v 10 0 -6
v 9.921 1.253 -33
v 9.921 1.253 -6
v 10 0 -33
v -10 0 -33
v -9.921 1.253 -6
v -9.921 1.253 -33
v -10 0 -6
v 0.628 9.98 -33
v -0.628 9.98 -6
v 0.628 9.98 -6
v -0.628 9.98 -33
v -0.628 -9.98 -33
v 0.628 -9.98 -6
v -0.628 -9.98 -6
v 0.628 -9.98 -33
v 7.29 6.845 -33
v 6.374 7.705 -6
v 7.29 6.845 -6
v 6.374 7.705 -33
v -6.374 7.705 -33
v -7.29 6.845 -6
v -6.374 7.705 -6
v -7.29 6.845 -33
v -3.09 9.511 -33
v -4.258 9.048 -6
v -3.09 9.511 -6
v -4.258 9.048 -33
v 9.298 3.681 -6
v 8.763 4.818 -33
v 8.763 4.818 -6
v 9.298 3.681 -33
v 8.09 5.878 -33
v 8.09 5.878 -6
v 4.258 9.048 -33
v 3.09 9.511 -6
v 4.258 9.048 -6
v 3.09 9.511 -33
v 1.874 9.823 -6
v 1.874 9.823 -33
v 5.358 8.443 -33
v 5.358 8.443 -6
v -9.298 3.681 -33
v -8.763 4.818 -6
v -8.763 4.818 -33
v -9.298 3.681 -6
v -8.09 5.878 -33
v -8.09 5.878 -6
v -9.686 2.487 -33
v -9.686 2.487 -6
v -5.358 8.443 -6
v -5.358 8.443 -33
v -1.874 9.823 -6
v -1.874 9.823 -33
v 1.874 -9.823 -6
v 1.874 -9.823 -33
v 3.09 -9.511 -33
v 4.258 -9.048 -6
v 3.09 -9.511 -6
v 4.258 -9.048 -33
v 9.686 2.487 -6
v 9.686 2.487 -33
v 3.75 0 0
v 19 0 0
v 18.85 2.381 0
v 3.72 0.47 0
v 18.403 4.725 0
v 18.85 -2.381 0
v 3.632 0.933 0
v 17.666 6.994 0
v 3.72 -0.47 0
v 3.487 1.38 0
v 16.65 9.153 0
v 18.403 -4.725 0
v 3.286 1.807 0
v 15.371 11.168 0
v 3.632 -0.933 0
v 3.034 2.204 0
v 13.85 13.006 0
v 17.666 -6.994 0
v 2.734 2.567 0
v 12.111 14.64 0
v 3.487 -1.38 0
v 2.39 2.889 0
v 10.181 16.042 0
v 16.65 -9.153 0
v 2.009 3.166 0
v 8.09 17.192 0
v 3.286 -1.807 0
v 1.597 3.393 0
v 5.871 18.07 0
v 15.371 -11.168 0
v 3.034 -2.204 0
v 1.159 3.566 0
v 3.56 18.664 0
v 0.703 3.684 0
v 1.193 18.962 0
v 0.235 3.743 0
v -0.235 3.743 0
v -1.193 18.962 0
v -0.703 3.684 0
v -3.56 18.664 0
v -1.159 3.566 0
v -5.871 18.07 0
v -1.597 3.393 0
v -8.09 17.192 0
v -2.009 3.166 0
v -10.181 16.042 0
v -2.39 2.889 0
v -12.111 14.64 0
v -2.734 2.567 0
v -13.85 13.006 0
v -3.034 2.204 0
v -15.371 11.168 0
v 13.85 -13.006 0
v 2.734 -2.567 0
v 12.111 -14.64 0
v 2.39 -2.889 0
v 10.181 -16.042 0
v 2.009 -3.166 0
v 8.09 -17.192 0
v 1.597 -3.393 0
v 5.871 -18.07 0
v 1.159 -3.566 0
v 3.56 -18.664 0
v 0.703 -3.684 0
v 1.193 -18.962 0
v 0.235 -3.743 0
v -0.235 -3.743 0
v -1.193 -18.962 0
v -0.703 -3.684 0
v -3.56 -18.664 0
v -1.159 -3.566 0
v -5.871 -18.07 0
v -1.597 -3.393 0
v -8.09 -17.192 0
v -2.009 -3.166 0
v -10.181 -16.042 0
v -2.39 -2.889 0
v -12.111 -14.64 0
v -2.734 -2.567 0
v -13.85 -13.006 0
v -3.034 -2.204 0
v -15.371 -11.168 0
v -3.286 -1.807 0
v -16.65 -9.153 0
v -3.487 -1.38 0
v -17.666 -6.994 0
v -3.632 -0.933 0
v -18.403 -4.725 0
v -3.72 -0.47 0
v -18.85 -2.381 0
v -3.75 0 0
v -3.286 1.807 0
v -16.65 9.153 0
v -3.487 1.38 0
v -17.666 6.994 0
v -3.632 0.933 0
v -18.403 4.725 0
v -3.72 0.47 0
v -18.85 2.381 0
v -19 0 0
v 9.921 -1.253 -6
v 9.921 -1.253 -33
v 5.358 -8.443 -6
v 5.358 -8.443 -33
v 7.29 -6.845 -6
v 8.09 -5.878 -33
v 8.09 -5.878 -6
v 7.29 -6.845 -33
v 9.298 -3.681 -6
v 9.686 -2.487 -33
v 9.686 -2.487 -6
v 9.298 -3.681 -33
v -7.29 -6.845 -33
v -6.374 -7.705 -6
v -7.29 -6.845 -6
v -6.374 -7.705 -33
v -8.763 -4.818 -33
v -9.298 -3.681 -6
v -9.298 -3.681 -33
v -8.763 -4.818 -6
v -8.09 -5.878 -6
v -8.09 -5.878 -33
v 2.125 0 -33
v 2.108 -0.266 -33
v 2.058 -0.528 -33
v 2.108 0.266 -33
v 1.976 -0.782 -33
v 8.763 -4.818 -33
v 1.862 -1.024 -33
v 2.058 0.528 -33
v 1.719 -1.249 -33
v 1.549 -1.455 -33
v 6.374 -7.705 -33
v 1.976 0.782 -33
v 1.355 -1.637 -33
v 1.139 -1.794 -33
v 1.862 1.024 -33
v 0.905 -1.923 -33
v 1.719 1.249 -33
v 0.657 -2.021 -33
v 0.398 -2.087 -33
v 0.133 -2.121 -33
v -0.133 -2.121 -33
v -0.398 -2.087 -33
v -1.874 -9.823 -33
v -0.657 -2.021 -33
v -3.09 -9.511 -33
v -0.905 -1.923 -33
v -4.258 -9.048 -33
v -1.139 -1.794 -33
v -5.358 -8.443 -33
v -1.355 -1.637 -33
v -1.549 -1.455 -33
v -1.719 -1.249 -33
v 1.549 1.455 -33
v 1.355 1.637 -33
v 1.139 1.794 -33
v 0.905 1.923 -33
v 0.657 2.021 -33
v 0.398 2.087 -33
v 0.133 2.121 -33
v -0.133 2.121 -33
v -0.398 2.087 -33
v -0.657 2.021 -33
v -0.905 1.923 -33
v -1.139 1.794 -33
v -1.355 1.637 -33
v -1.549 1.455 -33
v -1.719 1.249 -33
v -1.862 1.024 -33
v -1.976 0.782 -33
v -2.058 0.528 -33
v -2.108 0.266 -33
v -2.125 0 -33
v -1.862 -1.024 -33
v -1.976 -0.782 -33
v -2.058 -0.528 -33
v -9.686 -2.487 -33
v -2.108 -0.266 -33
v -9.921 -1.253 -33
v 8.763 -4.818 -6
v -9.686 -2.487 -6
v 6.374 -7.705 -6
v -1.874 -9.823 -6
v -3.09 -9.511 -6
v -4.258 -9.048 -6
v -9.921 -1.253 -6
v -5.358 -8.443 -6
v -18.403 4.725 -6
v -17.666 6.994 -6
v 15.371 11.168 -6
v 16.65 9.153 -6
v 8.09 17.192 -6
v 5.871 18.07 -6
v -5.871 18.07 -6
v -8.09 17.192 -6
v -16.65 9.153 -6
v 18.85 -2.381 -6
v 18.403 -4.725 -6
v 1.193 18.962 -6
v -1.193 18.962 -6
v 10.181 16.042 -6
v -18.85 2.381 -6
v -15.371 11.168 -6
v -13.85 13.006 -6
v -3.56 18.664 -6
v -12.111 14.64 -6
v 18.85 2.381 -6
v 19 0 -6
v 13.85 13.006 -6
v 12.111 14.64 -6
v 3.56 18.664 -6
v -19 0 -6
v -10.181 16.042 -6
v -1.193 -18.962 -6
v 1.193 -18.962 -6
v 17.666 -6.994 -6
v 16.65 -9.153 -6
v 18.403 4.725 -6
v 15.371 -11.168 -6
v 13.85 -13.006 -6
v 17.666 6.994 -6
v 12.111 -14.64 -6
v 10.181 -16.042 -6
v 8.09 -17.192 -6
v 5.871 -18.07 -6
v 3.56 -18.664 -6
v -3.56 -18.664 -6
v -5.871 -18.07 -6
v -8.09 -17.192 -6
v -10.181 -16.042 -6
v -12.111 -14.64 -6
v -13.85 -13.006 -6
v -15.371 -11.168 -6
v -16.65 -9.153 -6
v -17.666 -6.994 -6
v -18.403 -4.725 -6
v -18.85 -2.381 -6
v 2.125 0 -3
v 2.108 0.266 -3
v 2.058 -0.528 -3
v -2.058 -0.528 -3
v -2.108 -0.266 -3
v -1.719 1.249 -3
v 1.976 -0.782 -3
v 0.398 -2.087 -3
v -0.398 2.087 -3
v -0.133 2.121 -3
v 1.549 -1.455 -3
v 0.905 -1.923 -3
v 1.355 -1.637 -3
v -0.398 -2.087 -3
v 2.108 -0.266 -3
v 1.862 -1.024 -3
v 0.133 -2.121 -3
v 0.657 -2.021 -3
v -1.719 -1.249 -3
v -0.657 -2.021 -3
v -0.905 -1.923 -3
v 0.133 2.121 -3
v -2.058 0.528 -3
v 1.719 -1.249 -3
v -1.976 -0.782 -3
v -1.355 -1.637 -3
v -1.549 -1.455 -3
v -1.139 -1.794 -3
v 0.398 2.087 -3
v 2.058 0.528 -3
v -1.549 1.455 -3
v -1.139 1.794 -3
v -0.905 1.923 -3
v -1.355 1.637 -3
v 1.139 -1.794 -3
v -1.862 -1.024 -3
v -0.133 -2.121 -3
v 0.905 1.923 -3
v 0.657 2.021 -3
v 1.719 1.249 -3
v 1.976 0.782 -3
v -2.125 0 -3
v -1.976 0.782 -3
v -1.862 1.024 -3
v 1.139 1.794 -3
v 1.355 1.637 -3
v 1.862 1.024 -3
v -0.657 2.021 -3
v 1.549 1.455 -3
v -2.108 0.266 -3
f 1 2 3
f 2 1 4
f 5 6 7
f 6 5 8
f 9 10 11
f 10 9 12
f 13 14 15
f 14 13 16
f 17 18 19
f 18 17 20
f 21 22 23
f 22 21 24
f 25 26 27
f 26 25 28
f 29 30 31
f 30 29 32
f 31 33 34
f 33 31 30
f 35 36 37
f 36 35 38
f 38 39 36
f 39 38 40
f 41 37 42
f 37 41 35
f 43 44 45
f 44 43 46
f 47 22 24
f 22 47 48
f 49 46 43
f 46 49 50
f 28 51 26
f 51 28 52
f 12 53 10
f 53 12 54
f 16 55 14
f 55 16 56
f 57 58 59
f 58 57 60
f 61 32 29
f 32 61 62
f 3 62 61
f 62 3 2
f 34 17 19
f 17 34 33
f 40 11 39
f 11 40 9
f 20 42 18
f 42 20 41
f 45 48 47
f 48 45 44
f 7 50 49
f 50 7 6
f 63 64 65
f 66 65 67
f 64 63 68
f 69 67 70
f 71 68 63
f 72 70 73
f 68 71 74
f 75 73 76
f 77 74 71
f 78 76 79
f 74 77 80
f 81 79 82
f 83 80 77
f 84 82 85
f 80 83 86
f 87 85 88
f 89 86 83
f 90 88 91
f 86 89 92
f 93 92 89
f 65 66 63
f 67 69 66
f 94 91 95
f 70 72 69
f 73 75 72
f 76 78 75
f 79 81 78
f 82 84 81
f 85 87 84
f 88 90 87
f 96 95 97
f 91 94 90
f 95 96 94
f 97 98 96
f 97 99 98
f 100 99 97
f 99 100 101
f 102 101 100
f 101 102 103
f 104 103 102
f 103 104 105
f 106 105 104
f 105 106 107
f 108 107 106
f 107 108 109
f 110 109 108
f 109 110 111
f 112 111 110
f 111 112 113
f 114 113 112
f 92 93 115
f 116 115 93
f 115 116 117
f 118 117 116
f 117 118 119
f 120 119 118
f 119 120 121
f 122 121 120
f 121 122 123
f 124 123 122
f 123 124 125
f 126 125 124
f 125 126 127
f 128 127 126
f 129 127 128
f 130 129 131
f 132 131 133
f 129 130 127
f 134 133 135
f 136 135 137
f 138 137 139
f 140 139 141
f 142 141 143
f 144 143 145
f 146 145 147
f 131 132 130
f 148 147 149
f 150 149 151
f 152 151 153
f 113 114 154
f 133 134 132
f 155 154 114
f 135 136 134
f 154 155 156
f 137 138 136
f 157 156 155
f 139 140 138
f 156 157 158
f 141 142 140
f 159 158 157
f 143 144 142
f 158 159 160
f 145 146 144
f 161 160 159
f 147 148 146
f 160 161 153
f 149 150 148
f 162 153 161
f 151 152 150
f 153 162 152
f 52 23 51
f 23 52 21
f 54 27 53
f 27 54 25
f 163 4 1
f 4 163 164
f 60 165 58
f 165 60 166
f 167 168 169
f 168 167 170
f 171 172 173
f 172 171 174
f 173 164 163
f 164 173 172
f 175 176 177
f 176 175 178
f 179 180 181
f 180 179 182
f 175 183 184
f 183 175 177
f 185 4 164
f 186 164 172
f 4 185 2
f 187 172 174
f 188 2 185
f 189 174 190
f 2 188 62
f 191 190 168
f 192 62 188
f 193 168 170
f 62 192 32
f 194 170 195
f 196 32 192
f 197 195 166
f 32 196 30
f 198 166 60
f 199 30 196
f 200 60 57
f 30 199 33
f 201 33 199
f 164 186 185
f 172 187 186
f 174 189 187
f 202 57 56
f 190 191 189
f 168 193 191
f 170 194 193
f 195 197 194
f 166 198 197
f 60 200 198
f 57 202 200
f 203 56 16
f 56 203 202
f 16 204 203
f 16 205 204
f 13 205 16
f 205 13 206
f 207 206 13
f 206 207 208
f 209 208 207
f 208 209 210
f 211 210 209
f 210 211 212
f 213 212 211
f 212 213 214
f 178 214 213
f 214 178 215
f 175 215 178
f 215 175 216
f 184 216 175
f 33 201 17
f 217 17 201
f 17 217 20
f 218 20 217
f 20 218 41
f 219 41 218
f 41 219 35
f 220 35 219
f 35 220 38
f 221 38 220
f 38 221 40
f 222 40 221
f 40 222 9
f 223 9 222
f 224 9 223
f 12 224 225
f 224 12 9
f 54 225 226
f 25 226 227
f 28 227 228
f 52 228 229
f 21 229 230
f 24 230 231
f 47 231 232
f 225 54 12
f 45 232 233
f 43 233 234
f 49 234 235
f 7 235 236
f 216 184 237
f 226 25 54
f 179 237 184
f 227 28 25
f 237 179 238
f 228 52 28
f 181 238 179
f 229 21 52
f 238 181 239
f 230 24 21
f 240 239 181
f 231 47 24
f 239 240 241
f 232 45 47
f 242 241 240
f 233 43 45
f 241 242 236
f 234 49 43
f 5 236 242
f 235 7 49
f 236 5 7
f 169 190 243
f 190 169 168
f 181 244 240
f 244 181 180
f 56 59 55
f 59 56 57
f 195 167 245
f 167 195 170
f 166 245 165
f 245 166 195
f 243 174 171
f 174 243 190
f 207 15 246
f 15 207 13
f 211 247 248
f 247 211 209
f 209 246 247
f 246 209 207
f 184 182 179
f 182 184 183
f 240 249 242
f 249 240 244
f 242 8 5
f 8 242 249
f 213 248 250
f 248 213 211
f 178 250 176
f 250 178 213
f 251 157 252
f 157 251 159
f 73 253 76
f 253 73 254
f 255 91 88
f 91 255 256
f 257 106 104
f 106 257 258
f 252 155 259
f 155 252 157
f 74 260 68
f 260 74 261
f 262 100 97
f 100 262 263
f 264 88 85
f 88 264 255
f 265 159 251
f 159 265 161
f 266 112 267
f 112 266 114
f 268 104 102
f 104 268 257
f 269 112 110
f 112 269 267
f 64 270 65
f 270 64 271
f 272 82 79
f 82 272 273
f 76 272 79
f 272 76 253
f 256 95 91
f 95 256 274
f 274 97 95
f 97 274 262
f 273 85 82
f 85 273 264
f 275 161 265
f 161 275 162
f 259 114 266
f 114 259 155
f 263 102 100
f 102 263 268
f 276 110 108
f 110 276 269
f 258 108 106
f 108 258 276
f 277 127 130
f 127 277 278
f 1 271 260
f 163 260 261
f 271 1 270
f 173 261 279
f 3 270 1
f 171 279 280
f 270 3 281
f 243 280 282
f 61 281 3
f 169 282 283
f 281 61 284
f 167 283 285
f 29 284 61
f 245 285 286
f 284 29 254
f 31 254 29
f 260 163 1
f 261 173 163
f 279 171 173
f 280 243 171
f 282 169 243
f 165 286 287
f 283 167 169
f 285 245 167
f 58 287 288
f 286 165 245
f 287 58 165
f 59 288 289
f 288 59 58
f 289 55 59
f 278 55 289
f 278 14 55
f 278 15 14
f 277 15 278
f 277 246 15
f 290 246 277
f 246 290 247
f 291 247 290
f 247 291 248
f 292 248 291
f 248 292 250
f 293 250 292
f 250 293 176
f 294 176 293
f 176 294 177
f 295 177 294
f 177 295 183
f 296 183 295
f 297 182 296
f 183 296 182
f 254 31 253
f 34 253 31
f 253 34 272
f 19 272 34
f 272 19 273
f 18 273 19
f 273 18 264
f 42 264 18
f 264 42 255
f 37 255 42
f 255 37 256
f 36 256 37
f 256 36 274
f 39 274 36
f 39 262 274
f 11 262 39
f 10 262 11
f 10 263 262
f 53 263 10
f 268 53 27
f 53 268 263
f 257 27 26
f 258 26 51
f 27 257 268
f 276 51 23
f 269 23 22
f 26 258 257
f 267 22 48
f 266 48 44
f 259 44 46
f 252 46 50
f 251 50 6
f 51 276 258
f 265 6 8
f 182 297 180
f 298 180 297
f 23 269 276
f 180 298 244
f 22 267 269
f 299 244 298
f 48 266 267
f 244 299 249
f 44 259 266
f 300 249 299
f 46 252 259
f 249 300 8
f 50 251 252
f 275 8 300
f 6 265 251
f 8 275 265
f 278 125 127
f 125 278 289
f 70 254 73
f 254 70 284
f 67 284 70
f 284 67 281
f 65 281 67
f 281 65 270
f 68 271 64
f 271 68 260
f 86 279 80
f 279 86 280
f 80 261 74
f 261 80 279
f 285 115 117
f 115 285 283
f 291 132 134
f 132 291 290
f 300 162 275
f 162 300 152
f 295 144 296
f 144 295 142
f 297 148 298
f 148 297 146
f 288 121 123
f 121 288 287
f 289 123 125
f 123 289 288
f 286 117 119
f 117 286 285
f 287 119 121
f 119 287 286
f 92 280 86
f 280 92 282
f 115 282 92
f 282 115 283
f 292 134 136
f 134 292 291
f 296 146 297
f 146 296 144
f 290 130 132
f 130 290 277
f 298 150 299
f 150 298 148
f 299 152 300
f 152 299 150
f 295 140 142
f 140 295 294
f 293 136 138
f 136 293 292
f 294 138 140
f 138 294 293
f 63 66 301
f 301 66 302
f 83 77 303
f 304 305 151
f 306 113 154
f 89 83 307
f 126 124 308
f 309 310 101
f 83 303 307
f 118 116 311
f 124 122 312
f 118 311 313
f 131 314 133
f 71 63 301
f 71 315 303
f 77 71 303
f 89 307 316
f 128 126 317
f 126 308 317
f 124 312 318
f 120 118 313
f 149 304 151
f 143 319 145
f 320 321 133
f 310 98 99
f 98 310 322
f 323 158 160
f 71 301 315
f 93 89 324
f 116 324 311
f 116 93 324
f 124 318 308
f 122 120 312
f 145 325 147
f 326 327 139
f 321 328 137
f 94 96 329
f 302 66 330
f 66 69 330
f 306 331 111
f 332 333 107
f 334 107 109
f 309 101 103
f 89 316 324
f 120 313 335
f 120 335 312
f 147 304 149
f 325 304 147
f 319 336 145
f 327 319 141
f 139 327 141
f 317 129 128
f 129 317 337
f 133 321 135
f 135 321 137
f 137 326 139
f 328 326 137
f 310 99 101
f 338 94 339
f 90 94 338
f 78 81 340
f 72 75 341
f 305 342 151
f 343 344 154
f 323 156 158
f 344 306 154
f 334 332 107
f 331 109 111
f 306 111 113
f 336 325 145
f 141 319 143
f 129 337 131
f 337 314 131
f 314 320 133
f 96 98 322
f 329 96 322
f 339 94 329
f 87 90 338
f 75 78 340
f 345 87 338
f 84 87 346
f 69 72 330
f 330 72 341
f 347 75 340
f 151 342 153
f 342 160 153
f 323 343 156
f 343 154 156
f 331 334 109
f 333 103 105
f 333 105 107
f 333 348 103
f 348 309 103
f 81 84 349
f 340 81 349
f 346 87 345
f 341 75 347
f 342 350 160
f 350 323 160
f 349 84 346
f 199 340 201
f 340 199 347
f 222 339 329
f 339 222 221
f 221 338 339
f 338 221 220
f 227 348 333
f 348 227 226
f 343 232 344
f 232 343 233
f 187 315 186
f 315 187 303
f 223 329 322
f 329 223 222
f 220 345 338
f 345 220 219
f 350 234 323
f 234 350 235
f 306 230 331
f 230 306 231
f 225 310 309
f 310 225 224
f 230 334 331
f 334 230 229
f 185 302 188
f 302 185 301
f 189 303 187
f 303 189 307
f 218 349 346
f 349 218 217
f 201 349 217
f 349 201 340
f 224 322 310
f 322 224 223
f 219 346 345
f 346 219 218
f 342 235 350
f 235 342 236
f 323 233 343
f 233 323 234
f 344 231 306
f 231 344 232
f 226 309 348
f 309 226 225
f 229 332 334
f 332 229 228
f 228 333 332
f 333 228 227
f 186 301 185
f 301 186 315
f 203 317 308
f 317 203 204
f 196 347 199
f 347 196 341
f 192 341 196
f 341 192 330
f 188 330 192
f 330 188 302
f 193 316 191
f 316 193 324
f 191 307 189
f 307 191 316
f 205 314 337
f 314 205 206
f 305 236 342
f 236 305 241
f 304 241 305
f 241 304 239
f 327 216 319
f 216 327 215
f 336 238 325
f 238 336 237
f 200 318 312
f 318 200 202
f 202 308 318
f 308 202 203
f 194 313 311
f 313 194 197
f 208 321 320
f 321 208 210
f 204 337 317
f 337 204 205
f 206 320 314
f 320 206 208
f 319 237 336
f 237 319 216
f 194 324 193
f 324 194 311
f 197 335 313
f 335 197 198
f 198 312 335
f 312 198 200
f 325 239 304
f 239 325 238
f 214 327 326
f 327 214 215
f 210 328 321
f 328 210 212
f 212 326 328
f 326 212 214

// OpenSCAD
$fn = 50;


difference() {
	union() {
		translate(v = [0, 0, -33.0000000000]) {
			cylinder(h = 33, r = 10.0000000000);
		}
		translate(v = [0, 0, -6.0000000000]) {
			cylinder(h = 6, r = 19.0000000000);
		}
	}
	union() {
		translate(v = [0, 0, 0]) {
			rotate(a = [0, 0, 0]) {
				difference() {
					union() {
						#translate(v = [0, 0, -33.0000000000]) {
							cylinder(h = 33, r = 2.0000000000);
						}
						#translate(v = [0, 0, -3]) {
							cylinder(h = 3, r1 = 2.1250000000, r2 = 3.7500000000);
						}
						#translate(v = [0, 0, -33.0000000000]) {
							cylinder(h = 33, r = 2.1250000000);
						}
						#translate(v = [0, 0, -33.0000000000]) {
							cylinder(h = 33, r = 2.0000000000);
						}
					}
					union();
				}
			}
		}
	}
}
